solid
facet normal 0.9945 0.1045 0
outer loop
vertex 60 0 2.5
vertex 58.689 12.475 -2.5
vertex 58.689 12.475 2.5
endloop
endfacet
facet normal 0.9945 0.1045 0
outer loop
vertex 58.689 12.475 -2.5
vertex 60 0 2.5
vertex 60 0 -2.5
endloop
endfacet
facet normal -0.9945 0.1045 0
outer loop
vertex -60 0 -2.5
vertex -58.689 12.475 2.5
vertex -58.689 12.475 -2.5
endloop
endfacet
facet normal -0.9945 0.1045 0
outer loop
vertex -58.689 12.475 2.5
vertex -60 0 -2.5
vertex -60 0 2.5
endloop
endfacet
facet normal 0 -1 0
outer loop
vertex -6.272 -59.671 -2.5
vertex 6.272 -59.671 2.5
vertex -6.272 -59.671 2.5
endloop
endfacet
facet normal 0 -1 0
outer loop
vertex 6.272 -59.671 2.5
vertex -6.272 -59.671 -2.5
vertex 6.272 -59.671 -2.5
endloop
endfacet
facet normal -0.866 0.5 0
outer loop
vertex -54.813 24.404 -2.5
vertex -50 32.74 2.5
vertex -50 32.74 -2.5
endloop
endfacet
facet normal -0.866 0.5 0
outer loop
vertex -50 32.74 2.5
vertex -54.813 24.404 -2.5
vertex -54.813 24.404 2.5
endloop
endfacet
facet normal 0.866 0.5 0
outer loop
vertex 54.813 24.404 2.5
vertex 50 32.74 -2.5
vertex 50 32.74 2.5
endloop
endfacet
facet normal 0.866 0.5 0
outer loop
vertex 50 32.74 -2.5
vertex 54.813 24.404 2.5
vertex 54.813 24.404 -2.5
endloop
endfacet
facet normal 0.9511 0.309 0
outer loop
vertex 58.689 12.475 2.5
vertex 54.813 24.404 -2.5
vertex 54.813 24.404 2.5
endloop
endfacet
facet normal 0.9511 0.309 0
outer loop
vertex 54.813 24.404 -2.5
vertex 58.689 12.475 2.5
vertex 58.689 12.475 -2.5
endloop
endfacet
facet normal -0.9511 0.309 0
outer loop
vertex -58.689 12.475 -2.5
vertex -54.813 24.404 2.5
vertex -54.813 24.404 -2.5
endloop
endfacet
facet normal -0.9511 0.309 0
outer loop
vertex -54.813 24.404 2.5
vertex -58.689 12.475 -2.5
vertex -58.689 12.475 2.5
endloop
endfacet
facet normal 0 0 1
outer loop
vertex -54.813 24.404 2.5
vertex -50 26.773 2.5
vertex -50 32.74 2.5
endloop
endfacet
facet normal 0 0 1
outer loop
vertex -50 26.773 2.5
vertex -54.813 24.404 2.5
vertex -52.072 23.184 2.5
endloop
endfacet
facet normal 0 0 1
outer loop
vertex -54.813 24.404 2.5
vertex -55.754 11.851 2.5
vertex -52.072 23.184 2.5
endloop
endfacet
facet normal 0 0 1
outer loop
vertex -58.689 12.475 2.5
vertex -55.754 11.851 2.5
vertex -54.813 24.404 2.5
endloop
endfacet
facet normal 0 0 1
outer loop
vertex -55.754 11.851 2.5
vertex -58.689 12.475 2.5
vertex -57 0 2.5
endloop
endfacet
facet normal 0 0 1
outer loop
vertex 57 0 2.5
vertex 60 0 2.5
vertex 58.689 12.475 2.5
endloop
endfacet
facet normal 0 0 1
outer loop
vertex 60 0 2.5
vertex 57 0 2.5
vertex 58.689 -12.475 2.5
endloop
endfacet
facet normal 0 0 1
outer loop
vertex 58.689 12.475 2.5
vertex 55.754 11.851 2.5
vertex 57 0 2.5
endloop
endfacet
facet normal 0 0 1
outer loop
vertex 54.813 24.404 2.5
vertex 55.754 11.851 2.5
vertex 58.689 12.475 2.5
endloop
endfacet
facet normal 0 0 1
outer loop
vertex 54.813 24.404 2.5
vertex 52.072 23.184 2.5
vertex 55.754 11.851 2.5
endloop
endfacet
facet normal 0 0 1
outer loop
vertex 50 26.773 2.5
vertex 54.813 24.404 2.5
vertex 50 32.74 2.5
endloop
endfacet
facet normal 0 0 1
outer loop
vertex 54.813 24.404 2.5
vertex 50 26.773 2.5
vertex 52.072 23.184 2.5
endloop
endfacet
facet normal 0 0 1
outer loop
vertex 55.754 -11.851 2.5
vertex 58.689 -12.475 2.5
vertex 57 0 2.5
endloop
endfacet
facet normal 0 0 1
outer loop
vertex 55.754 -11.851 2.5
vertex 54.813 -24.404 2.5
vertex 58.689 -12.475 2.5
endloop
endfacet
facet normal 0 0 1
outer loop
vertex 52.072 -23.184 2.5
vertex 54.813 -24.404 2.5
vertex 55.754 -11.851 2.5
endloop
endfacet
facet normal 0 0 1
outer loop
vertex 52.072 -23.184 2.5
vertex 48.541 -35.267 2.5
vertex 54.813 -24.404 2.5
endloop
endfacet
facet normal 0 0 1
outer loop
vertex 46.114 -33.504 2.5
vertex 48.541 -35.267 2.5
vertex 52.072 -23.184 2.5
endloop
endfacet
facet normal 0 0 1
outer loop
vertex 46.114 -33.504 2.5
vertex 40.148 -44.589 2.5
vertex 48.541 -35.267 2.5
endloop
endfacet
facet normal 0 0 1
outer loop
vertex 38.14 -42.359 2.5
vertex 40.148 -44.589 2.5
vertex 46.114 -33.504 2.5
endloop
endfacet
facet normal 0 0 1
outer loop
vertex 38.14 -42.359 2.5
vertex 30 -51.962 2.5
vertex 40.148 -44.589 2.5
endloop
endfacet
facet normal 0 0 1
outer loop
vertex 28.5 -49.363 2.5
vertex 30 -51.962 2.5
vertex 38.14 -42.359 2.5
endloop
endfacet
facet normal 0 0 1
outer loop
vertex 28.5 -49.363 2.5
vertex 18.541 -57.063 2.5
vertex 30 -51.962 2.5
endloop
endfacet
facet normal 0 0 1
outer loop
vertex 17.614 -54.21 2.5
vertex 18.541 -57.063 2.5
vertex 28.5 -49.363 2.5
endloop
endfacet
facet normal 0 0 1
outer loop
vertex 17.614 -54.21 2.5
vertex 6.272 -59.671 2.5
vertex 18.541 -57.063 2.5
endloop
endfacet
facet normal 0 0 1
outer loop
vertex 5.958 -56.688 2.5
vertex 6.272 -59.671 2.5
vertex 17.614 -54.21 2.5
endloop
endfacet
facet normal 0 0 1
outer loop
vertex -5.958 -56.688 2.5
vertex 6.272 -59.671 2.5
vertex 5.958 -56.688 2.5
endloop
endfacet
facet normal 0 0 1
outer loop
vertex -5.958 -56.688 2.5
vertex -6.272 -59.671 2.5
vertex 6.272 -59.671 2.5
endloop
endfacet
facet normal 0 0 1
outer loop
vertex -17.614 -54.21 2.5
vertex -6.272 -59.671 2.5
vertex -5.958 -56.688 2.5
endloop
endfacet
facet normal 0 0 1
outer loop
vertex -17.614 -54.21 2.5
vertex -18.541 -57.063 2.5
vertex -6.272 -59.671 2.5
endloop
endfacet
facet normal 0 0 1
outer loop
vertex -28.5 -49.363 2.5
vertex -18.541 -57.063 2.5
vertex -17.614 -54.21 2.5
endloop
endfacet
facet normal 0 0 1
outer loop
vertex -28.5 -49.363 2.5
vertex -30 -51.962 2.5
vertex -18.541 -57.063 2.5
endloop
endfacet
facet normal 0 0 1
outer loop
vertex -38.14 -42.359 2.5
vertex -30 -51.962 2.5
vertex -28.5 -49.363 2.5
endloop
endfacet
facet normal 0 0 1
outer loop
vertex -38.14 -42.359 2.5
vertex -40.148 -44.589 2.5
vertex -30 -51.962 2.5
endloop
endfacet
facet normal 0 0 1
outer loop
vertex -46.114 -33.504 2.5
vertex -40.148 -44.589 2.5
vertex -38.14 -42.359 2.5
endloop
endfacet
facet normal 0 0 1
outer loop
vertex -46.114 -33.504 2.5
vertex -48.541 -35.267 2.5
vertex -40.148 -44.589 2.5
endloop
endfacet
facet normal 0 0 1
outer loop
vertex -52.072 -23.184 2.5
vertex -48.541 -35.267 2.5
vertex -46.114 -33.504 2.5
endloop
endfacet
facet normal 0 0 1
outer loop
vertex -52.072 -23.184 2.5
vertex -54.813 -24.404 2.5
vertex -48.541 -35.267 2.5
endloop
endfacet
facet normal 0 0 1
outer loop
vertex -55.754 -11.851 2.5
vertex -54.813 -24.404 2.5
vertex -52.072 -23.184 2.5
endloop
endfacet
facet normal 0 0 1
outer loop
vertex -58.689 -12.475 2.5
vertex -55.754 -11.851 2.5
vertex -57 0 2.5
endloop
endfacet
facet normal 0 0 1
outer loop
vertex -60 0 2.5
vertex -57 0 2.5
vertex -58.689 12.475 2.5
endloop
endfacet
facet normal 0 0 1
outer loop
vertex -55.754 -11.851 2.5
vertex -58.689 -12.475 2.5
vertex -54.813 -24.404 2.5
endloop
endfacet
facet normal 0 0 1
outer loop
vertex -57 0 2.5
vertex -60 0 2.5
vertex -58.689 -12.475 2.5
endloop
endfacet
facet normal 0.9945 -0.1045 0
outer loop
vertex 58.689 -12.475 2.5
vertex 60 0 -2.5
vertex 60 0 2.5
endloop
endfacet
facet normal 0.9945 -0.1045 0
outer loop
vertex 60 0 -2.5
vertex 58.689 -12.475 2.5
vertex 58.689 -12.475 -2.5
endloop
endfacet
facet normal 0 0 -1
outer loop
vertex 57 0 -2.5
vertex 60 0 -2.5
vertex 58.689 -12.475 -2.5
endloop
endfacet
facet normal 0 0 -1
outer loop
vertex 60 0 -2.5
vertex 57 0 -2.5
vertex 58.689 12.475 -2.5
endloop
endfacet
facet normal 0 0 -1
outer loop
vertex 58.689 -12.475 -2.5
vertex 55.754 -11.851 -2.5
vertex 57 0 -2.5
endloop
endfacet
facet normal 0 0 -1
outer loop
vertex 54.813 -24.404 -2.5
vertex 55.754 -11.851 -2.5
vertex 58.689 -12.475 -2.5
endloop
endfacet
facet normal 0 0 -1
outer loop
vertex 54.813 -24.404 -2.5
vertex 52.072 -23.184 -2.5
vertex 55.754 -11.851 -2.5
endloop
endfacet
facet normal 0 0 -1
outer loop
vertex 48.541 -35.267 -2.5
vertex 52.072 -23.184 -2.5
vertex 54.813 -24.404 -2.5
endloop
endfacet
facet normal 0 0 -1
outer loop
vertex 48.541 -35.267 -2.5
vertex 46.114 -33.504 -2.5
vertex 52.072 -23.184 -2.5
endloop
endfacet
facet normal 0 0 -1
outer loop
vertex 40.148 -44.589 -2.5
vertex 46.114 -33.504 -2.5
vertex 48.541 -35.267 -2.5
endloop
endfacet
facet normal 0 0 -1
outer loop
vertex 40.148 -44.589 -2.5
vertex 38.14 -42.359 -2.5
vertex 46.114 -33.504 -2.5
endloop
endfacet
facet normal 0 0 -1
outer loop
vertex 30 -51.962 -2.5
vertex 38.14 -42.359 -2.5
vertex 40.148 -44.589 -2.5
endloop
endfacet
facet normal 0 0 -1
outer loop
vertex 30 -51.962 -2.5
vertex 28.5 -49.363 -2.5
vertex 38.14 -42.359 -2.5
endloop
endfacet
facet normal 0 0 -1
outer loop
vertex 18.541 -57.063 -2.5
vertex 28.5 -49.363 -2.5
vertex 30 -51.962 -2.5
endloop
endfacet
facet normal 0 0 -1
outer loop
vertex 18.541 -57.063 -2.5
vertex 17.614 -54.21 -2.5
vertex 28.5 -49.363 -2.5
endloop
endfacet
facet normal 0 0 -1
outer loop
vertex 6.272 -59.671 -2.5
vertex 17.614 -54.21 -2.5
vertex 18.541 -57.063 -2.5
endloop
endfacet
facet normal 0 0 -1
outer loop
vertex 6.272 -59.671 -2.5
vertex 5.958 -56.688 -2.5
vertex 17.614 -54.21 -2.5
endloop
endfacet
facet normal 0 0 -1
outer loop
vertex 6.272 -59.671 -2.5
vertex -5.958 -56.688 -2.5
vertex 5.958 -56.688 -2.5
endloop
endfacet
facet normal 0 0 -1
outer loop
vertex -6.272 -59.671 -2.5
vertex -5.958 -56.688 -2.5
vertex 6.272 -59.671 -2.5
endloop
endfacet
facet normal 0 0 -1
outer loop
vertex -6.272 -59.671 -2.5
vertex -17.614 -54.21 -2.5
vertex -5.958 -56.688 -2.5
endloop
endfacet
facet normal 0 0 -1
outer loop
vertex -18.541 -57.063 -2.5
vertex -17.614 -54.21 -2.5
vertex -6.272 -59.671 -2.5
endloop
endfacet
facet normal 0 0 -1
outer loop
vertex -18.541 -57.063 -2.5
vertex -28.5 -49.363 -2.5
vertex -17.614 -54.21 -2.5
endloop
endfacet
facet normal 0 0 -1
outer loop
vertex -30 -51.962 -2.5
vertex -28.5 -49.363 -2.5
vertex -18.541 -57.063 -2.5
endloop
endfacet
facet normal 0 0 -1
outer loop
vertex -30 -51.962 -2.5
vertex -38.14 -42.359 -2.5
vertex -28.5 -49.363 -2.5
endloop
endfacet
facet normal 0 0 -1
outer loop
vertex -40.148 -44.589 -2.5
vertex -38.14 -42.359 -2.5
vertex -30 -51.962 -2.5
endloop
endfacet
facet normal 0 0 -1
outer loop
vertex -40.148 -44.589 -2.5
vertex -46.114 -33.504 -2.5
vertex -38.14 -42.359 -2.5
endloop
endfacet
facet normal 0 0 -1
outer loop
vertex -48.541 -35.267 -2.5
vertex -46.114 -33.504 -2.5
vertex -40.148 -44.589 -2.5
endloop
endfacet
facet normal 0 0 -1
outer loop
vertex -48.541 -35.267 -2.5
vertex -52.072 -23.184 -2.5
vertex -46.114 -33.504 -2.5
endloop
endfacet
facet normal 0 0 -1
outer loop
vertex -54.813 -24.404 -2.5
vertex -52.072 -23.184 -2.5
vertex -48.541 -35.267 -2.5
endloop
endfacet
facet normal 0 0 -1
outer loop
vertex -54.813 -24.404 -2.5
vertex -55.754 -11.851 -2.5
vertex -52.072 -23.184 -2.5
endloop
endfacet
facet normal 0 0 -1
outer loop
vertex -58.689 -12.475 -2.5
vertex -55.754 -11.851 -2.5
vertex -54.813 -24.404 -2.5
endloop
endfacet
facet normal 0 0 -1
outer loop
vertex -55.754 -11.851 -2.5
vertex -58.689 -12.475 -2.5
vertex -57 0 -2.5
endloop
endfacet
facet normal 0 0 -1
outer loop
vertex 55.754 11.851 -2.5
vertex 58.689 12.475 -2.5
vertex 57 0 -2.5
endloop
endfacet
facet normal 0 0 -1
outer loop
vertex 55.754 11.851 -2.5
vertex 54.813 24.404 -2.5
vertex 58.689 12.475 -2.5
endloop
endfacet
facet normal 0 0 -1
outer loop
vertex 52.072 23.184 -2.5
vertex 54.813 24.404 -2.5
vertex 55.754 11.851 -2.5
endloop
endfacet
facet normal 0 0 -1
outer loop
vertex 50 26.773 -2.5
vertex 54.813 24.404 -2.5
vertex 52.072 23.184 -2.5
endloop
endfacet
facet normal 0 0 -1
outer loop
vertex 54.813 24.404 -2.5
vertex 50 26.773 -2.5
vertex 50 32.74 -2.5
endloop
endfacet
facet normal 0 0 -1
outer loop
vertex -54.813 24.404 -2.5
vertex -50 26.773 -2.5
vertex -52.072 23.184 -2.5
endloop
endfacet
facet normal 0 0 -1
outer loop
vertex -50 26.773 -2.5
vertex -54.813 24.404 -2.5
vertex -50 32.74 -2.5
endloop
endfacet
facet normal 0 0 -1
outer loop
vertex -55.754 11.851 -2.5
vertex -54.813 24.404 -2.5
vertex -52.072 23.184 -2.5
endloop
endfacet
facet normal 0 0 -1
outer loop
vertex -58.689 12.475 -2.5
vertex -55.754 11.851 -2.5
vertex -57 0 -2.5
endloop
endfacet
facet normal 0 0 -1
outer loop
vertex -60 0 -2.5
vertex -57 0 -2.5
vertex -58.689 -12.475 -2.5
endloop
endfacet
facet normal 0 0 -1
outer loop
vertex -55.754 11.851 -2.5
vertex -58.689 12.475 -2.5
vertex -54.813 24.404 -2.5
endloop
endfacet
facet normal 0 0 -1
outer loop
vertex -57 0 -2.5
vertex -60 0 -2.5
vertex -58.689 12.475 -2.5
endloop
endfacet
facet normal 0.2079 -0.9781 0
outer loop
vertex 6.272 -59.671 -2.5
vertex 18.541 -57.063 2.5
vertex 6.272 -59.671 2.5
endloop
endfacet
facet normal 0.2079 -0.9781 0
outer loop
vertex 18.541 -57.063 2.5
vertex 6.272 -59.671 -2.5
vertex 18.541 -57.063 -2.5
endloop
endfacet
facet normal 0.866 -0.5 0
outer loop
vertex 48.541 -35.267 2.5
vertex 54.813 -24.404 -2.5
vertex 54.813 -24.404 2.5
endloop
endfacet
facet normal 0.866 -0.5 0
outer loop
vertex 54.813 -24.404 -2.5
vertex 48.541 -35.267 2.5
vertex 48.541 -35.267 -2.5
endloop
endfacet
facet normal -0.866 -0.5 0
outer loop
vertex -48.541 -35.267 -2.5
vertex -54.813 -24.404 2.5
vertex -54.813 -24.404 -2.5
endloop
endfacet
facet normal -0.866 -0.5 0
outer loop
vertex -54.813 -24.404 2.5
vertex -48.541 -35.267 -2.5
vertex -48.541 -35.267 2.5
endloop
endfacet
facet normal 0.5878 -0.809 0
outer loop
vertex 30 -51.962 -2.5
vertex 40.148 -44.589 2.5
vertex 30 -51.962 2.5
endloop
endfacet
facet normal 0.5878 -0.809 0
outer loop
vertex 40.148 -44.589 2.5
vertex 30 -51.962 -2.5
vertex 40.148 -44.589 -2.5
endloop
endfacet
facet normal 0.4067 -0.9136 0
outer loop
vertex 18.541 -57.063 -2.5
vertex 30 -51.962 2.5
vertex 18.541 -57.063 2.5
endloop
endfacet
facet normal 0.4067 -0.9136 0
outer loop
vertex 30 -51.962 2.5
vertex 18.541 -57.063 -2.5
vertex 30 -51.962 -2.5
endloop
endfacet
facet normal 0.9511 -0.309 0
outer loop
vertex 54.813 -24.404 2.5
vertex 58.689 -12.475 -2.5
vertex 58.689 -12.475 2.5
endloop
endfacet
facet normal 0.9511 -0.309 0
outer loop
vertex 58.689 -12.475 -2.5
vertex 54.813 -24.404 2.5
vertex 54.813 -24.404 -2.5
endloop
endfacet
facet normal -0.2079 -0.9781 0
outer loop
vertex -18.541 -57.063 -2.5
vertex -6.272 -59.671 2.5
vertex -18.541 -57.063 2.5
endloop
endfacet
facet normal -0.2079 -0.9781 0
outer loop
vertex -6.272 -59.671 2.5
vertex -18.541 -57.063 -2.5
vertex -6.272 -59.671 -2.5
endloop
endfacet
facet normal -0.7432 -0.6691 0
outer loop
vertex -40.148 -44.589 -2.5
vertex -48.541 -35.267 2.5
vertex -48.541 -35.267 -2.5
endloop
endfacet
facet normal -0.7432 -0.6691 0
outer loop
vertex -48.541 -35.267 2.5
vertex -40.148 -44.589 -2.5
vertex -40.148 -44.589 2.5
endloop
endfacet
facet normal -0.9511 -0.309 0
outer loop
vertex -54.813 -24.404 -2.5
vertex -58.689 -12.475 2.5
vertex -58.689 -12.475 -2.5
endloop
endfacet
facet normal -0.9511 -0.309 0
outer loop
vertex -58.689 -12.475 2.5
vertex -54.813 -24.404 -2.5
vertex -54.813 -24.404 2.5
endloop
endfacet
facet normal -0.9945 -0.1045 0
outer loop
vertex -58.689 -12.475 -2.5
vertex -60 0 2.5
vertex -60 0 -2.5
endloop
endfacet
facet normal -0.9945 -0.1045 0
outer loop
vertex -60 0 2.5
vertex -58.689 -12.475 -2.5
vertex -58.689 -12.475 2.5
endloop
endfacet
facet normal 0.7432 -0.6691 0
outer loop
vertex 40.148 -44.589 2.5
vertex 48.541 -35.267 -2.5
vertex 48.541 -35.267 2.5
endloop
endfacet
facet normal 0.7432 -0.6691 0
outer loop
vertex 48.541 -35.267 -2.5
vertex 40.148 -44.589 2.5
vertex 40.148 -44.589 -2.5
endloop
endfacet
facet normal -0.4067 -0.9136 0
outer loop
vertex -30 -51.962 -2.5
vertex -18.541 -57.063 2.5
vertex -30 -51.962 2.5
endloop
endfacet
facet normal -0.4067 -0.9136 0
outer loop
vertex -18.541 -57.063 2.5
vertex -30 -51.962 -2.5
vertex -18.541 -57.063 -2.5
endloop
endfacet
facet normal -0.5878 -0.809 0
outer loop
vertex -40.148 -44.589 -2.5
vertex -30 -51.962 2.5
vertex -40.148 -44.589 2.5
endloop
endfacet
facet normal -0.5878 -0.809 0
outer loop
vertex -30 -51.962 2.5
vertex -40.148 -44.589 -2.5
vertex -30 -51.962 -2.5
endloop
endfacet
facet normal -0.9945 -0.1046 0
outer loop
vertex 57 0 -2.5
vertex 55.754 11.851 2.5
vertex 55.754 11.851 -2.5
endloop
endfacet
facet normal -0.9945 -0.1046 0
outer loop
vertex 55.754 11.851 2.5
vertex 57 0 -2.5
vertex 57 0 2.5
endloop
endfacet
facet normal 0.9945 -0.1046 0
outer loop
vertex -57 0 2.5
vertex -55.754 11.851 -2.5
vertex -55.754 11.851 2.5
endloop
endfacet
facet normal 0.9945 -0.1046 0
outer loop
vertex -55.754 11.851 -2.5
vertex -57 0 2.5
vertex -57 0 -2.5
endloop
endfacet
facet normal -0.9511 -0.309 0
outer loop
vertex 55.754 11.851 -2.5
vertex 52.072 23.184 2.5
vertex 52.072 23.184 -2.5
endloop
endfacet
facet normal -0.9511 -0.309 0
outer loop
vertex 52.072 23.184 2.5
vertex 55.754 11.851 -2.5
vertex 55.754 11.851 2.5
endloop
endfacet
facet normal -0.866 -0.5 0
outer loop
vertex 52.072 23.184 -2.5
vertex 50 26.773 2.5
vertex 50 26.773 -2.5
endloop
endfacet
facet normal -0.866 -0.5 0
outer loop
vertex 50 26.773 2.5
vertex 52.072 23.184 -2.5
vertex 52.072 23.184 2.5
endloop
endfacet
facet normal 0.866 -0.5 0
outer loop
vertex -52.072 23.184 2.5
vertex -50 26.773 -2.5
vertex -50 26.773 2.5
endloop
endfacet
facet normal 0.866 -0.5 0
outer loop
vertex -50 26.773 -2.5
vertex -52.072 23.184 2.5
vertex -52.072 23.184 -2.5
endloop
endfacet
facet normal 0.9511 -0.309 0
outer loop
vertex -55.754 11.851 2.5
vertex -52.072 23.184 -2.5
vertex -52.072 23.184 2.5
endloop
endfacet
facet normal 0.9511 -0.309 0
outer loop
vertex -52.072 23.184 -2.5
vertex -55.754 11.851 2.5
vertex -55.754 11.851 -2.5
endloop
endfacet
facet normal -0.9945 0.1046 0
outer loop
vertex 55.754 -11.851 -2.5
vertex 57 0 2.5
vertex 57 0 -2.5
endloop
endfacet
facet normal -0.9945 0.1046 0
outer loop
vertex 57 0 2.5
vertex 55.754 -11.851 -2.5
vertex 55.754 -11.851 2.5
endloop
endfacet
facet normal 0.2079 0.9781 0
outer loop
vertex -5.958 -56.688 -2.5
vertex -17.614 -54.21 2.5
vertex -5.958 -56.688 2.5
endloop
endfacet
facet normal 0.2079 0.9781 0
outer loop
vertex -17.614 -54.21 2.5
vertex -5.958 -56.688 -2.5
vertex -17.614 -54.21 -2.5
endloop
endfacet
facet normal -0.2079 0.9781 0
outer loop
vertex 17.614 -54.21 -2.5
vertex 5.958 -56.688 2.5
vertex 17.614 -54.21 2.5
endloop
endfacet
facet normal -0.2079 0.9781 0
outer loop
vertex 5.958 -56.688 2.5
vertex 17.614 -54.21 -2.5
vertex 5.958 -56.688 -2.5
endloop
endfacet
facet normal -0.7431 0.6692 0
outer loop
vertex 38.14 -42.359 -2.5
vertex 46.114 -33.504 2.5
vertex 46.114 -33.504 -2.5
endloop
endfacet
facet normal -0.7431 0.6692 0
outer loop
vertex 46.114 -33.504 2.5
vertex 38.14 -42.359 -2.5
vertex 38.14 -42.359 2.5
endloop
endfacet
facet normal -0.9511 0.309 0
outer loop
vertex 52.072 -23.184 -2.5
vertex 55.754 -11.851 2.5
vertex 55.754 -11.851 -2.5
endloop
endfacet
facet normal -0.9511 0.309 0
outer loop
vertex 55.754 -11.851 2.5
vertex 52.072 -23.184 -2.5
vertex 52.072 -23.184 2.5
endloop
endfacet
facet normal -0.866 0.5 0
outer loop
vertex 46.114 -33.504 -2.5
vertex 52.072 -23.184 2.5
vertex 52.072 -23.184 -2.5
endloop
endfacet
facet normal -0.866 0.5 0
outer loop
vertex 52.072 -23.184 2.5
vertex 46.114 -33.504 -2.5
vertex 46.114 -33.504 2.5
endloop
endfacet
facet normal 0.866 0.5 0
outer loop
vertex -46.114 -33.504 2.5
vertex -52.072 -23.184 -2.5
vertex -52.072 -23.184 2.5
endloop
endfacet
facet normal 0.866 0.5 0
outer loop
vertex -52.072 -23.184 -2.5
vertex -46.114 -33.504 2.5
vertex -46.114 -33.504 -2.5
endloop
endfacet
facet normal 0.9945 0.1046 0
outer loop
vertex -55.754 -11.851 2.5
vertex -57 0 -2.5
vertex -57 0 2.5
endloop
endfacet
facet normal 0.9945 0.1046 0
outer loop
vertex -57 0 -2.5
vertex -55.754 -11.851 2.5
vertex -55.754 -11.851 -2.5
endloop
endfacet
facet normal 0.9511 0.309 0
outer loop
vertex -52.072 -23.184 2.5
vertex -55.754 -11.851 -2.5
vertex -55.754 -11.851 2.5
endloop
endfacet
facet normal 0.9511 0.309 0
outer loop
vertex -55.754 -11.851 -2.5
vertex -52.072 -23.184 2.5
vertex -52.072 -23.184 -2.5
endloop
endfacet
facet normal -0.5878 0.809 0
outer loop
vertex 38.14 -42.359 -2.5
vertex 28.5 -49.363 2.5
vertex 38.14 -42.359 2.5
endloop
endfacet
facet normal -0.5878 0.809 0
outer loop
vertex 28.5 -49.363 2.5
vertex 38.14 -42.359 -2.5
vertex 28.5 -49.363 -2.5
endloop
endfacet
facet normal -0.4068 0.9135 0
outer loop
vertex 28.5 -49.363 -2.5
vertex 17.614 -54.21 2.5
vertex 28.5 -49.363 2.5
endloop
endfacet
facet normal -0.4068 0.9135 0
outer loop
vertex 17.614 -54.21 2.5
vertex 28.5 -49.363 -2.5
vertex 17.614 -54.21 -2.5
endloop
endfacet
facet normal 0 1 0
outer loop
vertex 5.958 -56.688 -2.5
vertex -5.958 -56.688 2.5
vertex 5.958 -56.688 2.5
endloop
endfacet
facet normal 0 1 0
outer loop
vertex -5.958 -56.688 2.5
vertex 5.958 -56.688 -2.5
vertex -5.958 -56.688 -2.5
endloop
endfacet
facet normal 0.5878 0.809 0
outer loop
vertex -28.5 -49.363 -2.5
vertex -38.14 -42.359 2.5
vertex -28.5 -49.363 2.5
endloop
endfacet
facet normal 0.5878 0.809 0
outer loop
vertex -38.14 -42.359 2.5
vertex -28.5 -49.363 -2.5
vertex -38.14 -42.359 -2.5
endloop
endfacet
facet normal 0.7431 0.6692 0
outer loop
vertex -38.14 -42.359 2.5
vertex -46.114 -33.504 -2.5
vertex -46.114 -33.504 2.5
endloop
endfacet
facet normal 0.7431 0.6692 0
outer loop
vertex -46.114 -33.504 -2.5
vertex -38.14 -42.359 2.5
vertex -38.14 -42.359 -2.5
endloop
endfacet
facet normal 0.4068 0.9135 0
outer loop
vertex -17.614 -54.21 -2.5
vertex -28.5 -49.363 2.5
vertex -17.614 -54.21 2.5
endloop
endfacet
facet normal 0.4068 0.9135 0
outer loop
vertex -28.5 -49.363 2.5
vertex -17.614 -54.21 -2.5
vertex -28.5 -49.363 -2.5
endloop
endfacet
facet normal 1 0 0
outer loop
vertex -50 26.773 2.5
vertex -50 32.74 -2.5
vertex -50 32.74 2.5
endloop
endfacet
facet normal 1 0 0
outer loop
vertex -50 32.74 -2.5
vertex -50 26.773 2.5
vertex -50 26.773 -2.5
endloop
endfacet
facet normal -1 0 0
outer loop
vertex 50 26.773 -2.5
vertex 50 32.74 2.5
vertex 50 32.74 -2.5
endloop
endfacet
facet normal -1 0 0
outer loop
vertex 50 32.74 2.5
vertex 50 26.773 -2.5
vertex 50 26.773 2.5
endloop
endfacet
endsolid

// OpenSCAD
difference(){
    cylinder(r=60,h=5,center=true);
    cylinder(r=57,h=6,center=true);
    translate([0,70,0])
    cube([100,100,6],center=true);
}
